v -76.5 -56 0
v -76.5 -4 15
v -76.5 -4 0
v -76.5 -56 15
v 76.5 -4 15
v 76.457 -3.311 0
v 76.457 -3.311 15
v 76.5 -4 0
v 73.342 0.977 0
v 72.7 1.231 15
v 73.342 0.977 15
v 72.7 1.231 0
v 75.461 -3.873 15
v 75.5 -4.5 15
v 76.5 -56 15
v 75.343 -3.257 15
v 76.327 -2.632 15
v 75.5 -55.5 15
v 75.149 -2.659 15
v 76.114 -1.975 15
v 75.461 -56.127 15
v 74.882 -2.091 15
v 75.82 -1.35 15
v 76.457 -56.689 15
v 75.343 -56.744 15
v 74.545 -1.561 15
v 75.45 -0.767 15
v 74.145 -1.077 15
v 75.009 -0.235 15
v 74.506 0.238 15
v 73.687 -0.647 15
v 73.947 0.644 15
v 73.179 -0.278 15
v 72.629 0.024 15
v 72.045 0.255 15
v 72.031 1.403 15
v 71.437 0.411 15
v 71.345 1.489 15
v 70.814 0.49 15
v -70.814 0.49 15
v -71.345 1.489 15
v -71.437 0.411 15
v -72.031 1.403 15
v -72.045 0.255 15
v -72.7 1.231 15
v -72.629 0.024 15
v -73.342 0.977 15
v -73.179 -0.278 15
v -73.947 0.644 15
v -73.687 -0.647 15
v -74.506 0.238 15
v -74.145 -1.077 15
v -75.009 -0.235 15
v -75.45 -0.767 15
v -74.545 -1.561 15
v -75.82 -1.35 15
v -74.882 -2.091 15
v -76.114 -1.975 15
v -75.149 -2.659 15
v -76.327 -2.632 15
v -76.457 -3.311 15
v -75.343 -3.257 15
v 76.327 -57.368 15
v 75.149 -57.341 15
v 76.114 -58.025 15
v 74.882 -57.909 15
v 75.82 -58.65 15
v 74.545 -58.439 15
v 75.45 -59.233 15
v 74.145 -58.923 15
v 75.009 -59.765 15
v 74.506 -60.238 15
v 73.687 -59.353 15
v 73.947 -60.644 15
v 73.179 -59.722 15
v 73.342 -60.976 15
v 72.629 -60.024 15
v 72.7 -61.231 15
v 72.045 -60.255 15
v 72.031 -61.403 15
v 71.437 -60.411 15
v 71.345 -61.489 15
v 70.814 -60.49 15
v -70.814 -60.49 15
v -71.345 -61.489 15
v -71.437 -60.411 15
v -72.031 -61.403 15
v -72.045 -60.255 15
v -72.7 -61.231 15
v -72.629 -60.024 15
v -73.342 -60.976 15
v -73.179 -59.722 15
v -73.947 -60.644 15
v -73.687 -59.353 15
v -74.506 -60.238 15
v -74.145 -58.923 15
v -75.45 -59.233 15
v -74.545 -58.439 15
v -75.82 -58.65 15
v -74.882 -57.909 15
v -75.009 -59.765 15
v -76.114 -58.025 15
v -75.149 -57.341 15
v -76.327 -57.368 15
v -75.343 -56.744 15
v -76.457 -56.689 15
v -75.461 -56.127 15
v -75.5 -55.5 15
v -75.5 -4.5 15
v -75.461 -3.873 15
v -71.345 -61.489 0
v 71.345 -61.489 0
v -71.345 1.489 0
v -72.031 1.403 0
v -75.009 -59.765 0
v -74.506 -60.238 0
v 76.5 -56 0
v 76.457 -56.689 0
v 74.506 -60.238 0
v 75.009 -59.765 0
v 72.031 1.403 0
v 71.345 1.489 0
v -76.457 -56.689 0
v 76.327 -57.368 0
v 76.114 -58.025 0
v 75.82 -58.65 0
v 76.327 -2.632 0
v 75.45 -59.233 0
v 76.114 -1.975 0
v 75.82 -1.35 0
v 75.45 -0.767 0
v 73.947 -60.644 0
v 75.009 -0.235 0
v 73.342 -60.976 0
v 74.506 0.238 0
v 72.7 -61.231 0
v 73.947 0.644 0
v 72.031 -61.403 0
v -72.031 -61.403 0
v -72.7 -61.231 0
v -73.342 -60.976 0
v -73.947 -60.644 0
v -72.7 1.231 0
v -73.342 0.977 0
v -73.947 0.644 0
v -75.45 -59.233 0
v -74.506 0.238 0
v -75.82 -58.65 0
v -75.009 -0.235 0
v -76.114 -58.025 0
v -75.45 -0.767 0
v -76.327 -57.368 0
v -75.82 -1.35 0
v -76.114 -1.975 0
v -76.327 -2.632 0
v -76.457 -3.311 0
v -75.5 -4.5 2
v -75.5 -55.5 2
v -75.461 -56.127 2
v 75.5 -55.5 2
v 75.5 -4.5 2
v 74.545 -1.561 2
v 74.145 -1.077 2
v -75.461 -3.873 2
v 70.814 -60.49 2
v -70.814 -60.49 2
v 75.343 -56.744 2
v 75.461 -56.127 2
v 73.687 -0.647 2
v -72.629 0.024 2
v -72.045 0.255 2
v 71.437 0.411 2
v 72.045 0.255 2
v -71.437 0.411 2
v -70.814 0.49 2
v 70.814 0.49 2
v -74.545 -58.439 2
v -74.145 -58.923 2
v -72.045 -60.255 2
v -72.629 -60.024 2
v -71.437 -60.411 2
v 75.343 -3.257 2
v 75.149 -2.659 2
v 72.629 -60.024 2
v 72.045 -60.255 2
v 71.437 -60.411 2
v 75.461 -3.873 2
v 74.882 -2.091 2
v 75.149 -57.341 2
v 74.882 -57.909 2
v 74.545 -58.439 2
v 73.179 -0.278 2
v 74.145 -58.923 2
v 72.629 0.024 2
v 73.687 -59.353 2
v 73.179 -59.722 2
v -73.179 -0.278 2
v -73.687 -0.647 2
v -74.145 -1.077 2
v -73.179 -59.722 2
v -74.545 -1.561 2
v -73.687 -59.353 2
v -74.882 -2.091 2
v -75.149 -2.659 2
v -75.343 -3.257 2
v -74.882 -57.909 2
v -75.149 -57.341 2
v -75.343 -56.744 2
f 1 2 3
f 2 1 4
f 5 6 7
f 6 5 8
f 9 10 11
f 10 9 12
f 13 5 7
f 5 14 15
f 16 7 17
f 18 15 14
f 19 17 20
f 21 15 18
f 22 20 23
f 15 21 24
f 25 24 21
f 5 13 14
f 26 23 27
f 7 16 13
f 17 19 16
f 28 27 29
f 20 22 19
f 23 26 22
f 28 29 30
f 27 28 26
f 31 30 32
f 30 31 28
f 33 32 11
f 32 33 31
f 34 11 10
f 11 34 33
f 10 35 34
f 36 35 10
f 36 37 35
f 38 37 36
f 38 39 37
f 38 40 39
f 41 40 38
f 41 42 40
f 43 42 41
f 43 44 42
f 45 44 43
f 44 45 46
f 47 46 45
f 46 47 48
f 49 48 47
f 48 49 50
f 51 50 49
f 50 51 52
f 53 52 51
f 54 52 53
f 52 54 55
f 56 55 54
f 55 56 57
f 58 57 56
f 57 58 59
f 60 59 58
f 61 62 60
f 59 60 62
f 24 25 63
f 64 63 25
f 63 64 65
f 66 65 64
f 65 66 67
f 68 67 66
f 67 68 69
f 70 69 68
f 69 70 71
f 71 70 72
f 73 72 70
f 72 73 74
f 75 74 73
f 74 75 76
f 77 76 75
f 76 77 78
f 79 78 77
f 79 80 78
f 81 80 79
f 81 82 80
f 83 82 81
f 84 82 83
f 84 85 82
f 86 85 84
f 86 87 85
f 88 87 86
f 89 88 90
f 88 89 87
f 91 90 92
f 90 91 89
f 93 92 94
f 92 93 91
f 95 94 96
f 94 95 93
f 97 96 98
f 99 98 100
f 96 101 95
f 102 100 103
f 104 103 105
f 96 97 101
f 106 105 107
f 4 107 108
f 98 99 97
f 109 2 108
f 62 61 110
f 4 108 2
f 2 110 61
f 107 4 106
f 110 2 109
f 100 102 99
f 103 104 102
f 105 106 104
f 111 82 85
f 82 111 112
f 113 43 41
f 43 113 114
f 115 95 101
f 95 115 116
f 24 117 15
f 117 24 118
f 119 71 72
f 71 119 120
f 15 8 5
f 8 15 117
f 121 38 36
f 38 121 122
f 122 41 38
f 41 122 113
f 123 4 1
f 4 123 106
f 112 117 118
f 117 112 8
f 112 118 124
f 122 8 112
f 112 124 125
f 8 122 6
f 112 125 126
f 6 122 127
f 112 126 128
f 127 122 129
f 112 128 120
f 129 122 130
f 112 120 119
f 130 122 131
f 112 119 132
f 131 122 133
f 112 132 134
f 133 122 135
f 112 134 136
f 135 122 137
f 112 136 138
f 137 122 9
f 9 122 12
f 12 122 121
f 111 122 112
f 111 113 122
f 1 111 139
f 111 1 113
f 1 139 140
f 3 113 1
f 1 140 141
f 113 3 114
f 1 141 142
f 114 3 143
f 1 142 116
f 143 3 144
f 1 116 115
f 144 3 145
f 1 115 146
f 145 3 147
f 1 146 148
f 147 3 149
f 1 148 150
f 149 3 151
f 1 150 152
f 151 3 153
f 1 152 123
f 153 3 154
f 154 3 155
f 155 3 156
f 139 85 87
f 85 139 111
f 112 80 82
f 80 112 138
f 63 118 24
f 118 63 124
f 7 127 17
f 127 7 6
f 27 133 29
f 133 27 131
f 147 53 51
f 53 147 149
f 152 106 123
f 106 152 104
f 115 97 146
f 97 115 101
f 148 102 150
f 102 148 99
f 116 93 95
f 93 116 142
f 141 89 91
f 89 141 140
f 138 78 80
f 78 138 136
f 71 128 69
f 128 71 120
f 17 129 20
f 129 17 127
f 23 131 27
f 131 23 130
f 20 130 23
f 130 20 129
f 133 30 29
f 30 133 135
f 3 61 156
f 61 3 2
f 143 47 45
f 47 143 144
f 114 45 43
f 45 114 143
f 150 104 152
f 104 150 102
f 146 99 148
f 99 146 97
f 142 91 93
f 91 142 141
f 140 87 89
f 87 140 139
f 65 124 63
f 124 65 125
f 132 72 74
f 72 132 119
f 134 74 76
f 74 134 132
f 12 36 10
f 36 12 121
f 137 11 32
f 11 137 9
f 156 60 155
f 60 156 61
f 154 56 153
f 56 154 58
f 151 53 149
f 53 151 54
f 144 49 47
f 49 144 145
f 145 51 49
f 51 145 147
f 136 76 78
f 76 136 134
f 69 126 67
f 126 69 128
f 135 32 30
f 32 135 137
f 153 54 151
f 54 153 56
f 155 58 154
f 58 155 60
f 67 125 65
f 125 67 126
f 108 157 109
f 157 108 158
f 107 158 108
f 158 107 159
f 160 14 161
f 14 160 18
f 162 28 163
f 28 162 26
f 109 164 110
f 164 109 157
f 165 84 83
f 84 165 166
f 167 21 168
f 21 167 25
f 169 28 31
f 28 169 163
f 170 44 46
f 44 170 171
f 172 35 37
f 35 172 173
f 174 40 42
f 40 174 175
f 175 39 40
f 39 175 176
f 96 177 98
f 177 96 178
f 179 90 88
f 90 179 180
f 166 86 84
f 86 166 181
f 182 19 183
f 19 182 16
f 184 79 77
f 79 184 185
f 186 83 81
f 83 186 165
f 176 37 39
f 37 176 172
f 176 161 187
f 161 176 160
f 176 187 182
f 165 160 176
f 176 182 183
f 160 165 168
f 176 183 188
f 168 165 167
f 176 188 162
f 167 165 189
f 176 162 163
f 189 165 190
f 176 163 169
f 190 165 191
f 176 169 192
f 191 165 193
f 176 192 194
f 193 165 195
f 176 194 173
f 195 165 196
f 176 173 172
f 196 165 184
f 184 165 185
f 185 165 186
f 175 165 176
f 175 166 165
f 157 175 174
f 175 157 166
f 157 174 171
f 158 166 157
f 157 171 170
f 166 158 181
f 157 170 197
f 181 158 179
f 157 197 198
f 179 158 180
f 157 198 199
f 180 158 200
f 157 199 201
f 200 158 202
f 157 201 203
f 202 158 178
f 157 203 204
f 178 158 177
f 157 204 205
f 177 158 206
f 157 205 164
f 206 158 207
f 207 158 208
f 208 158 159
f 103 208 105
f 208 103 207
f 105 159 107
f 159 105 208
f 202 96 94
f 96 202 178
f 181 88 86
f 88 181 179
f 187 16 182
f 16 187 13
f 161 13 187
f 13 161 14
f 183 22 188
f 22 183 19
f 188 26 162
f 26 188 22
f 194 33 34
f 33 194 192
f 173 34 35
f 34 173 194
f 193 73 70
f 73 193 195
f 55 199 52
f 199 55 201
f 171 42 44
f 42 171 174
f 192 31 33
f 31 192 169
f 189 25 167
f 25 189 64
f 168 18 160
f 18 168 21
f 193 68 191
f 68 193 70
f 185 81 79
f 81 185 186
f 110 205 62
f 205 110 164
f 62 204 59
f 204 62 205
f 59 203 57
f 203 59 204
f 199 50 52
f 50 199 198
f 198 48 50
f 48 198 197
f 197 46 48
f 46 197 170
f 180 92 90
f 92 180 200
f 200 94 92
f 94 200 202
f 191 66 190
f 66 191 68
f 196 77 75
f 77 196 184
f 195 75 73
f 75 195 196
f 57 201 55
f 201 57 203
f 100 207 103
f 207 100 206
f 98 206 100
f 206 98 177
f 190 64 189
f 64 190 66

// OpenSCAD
$fn = 50;


difference() {
	union() {
		translate(v = [0, -30.0000000000, 0]) {
			hull() {
				translate(v = [-71.0000000000, 26.0000000000, 0]) {
					cylinder(h = 15, r = 5.5000000000);
				}
				translate(v = [71.0000000000, 26.0000000000, 0]) {
					cylinder(h = 15, r = 5.5000000000);
				}
				translate(v = [-71.0000000000, -26.0000000000, 0]) {
					cylinder(h = 15, r = 5.5000000000);
				}
				translate(v = [71.0000000000, -26.0000000000, 0]) {
					cylinder(h = 15, r = 5.5000000000);
				}
			}
		}
	}
	union() {
		translate(v = [0, -30.0000000000, 2]) {
			hull() {
				translate(v = [-70.5000000000, 25.5000000000, 0]) {
					cylinder(h = 30, r = 5);
				}
				translate(v = [70.5000000000, 25.5000000000, 0]) {
					cylinder(h = 30, r = 5);
				}
				translate(v = [-70.5000000000, -25.5000000000, 0]) {
					cylinder(h = 30, r = 5);
				}
				translate(v = [70.5000000000, -25.5000000000, 0]) {
					cylinder(h = 30, r = 5);
				}
			}
		}
	}
}
